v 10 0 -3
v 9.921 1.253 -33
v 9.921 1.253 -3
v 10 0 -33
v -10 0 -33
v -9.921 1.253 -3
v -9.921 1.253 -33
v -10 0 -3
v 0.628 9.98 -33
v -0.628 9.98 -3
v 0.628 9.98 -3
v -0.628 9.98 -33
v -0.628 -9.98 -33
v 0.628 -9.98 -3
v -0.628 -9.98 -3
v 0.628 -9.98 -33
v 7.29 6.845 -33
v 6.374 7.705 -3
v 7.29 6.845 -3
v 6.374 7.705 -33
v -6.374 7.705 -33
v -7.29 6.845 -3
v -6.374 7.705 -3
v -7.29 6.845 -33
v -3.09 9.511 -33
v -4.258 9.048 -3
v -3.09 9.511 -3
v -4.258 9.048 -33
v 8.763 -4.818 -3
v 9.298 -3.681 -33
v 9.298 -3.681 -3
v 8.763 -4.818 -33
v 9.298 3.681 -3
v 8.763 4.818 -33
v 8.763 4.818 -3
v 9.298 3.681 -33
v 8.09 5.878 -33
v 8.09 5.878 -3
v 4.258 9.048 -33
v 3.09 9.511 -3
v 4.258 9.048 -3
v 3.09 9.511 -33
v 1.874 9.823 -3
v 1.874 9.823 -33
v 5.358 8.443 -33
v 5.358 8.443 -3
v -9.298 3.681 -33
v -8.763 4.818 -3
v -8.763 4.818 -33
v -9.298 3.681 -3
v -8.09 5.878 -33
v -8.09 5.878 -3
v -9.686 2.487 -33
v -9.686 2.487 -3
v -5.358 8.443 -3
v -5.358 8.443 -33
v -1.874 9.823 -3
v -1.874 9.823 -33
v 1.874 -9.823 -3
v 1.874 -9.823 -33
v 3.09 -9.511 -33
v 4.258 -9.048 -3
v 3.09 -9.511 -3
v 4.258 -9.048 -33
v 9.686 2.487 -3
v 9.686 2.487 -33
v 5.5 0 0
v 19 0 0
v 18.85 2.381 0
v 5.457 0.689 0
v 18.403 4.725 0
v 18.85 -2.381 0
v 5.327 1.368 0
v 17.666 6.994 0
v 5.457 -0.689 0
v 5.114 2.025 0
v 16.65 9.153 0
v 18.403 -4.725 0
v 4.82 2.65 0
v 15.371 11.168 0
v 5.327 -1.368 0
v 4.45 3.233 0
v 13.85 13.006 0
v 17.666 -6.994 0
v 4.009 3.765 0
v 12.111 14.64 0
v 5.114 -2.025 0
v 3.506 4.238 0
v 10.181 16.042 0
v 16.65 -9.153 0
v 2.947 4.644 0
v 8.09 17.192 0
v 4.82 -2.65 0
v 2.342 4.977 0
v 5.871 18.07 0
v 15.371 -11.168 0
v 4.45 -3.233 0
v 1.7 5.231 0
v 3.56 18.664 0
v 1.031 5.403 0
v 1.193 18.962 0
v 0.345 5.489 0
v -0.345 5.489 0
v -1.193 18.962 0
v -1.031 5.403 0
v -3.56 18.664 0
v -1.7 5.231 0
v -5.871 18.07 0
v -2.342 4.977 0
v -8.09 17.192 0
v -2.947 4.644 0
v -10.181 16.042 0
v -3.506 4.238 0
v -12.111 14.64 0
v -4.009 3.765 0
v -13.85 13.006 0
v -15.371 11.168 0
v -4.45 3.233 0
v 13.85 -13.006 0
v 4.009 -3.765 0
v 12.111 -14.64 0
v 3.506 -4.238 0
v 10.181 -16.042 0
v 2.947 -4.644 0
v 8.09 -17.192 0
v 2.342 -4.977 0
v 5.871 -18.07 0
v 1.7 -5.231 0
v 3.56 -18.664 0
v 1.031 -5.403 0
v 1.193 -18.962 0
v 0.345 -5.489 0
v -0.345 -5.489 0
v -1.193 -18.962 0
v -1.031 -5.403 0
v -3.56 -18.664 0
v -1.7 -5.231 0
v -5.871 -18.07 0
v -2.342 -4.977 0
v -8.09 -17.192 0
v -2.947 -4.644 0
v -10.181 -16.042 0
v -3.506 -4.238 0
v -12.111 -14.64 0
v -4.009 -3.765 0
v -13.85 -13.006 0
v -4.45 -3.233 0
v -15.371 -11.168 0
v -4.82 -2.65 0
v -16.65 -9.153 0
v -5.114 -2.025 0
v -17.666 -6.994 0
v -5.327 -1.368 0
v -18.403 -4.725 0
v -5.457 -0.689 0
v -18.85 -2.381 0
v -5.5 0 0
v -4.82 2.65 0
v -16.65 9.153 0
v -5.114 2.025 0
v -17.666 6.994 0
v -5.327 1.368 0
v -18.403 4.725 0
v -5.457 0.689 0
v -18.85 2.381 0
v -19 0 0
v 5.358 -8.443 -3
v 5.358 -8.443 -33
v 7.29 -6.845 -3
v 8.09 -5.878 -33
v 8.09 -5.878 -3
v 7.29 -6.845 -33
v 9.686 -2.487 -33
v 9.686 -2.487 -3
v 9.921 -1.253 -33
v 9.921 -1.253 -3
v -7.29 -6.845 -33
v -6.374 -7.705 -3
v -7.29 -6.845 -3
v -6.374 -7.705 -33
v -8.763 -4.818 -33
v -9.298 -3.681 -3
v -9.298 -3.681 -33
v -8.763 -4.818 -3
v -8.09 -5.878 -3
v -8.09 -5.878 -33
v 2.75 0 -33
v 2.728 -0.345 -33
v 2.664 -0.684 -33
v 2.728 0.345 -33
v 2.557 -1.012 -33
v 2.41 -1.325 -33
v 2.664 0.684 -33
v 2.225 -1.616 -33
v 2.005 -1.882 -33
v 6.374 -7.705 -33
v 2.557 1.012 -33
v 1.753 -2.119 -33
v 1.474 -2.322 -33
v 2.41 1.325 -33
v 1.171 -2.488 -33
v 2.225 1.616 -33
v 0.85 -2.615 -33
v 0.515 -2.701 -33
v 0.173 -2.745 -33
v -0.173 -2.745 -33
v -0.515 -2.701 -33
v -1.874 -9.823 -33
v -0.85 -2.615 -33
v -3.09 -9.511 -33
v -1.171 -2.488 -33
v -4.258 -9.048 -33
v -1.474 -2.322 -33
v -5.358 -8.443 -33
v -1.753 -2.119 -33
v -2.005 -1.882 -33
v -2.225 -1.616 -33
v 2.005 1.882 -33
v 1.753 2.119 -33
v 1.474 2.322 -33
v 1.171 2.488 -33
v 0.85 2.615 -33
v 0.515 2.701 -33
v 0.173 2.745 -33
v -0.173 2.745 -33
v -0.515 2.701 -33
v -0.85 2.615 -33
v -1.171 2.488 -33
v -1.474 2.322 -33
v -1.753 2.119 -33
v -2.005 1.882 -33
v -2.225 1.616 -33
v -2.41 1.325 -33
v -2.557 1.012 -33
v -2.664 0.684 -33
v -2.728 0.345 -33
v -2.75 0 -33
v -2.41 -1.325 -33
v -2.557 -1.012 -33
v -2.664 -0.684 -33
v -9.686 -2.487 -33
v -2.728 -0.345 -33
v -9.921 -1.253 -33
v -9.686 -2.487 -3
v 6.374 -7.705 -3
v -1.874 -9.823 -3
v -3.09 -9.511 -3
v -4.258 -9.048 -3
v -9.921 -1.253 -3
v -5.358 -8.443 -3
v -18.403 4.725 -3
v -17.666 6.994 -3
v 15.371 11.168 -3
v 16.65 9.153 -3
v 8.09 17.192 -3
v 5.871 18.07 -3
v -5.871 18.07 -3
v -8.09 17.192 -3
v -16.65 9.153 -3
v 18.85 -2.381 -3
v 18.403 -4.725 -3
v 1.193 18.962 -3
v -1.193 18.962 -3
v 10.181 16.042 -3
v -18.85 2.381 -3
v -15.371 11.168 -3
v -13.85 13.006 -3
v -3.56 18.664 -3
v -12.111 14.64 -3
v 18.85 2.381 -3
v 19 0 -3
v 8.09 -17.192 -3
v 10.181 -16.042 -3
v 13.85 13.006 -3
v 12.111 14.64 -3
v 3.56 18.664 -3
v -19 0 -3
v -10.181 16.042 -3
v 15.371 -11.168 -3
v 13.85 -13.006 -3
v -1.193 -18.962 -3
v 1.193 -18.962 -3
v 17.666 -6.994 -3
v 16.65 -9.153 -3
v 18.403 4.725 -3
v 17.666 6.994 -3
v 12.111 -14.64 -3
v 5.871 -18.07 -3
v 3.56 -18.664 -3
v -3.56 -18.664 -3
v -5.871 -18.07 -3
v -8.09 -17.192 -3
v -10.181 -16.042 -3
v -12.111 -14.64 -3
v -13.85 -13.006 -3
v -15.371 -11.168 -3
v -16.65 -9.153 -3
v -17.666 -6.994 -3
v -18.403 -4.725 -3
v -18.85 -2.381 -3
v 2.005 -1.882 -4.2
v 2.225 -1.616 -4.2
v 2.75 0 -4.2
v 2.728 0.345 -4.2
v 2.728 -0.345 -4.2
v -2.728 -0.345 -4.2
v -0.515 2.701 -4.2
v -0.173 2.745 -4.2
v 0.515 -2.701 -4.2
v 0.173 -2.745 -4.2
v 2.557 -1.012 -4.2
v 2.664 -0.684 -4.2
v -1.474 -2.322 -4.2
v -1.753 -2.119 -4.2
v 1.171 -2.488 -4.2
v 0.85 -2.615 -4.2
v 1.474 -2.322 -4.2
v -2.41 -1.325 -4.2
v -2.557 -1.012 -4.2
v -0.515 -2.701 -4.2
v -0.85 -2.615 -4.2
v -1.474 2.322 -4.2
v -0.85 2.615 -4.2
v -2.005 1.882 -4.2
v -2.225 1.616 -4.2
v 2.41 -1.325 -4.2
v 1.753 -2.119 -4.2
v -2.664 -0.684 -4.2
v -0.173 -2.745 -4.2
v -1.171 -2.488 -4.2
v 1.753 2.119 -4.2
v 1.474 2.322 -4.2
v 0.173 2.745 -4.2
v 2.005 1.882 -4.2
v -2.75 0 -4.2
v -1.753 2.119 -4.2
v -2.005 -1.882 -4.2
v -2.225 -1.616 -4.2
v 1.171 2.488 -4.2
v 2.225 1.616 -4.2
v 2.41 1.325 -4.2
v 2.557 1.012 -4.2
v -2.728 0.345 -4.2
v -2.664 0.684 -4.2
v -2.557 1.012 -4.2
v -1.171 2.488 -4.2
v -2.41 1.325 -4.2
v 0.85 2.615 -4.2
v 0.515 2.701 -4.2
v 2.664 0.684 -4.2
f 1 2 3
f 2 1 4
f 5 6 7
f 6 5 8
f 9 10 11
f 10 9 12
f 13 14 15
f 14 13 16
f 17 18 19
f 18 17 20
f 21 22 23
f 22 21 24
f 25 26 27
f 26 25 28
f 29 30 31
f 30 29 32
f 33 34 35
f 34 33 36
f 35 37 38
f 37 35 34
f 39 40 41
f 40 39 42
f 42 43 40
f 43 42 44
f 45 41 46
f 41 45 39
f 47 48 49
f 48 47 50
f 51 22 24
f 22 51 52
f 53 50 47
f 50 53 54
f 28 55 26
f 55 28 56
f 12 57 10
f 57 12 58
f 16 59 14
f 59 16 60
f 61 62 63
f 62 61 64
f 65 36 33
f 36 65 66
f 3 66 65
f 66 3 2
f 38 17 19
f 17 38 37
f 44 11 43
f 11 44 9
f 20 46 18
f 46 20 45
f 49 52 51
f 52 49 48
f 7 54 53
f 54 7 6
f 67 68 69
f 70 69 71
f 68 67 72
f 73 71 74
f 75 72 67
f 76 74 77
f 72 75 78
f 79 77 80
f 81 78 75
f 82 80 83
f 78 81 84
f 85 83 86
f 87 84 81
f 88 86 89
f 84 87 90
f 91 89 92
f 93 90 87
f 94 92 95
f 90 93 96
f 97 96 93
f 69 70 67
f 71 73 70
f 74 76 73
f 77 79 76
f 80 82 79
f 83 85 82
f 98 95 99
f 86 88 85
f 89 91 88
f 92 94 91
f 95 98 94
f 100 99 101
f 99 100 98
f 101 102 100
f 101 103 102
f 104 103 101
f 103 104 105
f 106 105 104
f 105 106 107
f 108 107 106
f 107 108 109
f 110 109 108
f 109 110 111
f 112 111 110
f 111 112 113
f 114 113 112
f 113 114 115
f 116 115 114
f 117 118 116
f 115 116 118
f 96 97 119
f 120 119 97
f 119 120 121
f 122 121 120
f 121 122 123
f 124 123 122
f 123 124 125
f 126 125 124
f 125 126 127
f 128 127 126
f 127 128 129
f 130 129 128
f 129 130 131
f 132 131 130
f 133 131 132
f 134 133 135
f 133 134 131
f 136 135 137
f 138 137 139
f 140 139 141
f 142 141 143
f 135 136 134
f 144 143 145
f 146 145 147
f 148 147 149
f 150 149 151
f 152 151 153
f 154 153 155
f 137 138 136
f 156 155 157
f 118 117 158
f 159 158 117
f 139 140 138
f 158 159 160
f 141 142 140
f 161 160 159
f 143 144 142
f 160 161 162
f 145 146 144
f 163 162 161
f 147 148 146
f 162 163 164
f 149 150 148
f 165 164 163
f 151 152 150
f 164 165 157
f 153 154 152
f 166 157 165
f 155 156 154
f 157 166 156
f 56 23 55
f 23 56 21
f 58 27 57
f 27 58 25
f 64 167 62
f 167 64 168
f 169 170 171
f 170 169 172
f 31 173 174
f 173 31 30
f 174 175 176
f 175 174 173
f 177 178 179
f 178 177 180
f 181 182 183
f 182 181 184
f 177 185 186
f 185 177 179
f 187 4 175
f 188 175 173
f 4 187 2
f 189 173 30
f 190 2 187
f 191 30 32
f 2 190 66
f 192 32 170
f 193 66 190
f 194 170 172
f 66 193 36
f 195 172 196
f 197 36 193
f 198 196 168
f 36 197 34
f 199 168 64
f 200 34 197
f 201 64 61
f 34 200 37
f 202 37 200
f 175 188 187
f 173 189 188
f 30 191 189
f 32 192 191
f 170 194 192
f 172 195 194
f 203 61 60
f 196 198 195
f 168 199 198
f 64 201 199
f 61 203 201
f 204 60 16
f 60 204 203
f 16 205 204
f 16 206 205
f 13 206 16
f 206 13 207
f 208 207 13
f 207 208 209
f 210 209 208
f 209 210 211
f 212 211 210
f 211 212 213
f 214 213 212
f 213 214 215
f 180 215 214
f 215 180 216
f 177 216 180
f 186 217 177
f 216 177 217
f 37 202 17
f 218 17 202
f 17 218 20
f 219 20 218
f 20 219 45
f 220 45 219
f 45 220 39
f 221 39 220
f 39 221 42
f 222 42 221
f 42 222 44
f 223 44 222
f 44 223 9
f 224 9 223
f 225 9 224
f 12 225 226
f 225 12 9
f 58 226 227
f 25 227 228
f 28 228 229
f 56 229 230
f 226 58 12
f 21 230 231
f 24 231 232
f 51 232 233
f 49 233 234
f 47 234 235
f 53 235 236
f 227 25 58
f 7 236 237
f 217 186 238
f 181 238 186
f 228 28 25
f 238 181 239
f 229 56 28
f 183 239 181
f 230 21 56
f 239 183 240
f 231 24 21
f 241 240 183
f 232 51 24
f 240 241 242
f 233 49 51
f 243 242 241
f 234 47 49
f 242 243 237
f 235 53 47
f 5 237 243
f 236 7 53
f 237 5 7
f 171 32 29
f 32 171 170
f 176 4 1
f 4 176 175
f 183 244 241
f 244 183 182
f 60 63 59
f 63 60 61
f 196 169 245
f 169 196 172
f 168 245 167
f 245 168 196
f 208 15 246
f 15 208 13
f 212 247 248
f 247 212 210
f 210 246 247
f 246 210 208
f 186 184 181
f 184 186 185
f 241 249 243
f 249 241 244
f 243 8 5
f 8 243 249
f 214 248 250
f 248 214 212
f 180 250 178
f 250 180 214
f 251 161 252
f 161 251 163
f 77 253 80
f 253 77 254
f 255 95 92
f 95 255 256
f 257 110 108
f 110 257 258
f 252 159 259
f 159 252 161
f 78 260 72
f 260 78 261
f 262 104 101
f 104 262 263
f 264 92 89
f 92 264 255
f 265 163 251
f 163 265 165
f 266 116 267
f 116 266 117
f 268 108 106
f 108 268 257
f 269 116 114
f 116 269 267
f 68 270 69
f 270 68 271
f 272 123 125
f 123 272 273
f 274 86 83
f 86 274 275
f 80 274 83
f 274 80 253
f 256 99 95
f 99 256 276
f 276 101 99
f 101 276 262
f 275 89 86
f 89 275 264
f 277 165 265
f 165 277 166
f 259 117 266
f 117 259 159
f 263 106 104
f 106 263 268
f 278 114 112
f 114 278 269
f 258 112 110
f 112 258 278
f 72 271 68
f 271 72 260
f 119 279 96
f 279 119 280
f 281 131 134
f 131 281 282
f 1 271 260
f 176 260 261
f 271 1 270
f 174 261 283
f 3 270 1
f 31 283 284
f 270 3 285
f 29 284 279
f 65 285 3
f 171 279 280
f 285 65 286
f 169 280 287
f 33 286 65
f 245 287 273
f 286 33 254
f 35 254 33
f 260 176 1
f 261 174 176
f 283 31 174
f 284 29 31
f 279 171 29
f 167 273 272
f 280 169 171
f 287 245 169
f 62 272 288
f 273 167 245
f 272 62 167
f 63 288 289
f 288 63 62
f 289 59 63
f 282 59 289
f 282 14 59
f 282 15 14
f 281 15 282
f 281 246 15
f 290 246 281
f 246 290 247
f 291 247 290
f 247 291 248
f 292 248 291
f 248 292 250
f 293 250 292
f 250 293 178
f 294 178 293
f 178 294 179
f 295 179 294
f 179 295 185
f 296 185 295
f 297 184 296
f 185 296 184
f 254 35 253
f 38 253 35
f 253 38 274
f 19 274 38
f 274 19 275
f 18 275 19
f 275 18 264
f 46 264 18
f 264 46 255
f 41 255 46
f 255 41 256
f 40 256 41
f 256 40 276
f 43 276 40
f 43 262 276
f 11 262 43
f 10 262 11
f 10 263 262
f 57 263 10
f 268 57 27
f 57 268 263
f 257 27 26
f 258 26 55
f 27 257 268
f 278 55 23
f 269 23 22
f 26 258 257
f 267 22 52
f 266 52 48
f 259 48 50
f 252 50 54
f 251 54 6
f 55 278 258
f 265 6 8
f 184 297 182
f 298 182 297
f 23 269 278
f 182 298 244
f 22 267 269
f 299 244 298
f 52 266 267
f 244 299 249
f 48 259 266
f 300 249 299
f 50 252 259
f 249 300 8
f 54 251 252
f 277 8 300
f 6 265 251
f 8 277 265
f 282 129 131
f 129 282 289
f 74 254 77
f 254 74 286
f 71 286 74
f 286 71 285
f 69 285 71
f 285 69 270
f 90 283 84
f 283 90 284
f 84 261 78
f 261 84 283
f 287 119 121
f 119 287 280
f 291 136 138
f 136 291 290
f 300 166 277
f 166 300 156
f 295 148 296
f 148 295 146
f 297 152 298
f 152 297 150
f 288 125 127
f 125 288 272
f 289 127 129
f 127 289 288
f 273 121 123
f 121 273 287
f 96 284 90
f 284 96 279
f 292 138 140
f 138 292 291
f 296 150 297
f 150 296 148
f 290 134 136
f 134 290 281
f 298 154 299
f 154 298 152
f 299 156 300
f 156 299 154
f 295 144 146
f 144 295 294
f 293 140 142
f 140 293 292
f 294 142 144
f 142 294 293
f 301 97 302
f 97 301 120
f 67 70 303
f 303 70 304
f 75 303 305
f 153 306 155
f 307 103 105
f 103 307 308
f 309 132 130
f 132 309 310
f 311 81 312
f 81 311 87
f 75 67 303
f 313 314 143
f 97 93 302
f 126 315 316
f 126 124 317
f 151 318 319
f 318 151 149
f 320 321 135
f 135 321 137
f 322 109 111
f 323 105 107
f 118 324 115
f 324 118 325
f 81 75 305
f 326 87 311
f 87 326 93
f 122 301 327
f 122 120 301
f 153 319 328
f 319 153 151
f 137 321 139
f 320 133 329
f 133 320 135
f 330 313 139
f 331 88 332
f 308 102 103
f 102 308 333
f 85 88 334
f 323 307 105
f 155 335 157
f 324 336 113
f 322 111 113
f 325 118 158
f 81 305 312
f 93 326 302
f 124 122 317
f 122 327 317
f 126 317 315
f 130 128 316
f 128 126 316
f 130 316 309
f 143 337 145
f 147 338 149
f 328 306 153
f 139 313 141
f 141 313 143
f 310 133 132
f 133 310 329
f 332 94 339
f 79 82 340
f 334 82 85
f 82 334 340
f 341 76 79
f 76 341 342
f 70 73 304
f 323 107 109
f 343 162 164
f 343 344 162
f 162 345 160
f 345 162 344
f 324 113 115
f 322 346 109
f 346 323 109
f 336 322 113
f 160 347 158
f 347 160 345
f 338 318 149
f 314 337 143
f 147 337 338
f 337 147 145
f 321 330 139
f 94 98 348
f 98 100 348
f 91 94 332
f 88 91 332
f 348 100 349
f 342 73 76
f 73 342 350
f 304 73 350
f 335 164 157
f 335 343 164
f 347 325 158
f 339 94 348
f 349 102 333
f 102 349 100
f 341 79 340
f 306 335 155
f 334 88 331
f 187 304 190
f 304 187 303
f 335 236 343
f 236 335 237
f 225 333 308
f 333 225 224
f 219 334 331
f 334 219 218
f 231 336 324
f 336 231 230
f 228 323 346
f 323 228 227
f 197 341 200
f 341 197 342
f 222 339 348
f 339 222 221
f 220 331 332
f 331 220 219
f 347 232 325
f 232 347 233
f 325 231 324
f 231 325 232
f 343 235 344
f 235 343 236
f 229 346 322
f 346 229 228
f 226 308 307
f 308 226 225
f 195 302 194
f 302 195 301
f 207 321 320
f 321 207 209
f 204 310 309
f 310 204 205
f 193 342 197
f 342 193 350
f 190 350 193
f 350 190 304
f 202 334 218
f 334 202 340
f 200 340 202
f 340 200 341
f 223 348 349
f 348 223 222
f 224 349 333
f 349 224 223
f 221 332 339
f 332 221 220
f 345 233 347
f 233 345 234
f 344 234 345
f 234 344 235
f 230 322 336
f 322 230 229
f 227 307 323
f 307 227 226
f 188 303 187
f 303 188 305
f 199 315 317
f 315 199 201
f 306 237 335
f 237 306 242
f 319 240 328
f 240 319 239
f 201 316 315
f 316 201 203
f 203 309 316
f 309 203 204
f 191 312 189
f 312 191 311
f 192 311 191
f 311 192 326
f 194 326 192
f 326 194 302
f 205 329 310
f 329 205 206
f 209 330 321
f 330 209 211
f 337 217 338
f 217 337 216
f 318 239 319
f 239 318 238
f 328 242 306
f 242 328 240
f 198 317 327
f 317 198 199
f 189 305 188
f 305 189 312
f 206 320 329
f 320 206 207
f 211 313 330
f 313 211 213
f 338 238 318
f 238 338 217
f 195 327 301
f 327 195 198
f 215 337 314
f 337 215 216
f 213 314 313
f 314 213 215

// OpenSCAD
$fn = 50;


difference() {
	union() {
		translate(v = [0, 0, -33.0000000000]) {
			cylinder(h = 33, r = 10.0000000000);
		}
		translate(v = [0, 0, -3.0000000000]) {
			cylinder(h = 3, r = 19.0000000000);
		}
	}
	union() {
		translate(v = [0, 0, 0]) {
			rotate(a = [0, 0, 0]) {
				difference() {
					union() {
						#translate(v = [0, 0, -33.0000000000]) {
							cylinder(h = 33, r = 2.2500000000);
						}
						#translate(v = [0, 0, -4.2000000000]) {
							cylinder(h = 4.2000000000, r = 10.0000000000, r1 = 2.7500000000, r2 = 5.5000000000);
						}
						#translate(v = [0, 0, -33.0000000000]) {
							cylinder(h = 33, r = 2.7500000000);
						}
						#translate(v = [0, 0, -33.0000000000]) {
							cylinder(h = 33, r = 2.2500000000);
						}
					}
					union();
				}
			}
		}
	}
}
